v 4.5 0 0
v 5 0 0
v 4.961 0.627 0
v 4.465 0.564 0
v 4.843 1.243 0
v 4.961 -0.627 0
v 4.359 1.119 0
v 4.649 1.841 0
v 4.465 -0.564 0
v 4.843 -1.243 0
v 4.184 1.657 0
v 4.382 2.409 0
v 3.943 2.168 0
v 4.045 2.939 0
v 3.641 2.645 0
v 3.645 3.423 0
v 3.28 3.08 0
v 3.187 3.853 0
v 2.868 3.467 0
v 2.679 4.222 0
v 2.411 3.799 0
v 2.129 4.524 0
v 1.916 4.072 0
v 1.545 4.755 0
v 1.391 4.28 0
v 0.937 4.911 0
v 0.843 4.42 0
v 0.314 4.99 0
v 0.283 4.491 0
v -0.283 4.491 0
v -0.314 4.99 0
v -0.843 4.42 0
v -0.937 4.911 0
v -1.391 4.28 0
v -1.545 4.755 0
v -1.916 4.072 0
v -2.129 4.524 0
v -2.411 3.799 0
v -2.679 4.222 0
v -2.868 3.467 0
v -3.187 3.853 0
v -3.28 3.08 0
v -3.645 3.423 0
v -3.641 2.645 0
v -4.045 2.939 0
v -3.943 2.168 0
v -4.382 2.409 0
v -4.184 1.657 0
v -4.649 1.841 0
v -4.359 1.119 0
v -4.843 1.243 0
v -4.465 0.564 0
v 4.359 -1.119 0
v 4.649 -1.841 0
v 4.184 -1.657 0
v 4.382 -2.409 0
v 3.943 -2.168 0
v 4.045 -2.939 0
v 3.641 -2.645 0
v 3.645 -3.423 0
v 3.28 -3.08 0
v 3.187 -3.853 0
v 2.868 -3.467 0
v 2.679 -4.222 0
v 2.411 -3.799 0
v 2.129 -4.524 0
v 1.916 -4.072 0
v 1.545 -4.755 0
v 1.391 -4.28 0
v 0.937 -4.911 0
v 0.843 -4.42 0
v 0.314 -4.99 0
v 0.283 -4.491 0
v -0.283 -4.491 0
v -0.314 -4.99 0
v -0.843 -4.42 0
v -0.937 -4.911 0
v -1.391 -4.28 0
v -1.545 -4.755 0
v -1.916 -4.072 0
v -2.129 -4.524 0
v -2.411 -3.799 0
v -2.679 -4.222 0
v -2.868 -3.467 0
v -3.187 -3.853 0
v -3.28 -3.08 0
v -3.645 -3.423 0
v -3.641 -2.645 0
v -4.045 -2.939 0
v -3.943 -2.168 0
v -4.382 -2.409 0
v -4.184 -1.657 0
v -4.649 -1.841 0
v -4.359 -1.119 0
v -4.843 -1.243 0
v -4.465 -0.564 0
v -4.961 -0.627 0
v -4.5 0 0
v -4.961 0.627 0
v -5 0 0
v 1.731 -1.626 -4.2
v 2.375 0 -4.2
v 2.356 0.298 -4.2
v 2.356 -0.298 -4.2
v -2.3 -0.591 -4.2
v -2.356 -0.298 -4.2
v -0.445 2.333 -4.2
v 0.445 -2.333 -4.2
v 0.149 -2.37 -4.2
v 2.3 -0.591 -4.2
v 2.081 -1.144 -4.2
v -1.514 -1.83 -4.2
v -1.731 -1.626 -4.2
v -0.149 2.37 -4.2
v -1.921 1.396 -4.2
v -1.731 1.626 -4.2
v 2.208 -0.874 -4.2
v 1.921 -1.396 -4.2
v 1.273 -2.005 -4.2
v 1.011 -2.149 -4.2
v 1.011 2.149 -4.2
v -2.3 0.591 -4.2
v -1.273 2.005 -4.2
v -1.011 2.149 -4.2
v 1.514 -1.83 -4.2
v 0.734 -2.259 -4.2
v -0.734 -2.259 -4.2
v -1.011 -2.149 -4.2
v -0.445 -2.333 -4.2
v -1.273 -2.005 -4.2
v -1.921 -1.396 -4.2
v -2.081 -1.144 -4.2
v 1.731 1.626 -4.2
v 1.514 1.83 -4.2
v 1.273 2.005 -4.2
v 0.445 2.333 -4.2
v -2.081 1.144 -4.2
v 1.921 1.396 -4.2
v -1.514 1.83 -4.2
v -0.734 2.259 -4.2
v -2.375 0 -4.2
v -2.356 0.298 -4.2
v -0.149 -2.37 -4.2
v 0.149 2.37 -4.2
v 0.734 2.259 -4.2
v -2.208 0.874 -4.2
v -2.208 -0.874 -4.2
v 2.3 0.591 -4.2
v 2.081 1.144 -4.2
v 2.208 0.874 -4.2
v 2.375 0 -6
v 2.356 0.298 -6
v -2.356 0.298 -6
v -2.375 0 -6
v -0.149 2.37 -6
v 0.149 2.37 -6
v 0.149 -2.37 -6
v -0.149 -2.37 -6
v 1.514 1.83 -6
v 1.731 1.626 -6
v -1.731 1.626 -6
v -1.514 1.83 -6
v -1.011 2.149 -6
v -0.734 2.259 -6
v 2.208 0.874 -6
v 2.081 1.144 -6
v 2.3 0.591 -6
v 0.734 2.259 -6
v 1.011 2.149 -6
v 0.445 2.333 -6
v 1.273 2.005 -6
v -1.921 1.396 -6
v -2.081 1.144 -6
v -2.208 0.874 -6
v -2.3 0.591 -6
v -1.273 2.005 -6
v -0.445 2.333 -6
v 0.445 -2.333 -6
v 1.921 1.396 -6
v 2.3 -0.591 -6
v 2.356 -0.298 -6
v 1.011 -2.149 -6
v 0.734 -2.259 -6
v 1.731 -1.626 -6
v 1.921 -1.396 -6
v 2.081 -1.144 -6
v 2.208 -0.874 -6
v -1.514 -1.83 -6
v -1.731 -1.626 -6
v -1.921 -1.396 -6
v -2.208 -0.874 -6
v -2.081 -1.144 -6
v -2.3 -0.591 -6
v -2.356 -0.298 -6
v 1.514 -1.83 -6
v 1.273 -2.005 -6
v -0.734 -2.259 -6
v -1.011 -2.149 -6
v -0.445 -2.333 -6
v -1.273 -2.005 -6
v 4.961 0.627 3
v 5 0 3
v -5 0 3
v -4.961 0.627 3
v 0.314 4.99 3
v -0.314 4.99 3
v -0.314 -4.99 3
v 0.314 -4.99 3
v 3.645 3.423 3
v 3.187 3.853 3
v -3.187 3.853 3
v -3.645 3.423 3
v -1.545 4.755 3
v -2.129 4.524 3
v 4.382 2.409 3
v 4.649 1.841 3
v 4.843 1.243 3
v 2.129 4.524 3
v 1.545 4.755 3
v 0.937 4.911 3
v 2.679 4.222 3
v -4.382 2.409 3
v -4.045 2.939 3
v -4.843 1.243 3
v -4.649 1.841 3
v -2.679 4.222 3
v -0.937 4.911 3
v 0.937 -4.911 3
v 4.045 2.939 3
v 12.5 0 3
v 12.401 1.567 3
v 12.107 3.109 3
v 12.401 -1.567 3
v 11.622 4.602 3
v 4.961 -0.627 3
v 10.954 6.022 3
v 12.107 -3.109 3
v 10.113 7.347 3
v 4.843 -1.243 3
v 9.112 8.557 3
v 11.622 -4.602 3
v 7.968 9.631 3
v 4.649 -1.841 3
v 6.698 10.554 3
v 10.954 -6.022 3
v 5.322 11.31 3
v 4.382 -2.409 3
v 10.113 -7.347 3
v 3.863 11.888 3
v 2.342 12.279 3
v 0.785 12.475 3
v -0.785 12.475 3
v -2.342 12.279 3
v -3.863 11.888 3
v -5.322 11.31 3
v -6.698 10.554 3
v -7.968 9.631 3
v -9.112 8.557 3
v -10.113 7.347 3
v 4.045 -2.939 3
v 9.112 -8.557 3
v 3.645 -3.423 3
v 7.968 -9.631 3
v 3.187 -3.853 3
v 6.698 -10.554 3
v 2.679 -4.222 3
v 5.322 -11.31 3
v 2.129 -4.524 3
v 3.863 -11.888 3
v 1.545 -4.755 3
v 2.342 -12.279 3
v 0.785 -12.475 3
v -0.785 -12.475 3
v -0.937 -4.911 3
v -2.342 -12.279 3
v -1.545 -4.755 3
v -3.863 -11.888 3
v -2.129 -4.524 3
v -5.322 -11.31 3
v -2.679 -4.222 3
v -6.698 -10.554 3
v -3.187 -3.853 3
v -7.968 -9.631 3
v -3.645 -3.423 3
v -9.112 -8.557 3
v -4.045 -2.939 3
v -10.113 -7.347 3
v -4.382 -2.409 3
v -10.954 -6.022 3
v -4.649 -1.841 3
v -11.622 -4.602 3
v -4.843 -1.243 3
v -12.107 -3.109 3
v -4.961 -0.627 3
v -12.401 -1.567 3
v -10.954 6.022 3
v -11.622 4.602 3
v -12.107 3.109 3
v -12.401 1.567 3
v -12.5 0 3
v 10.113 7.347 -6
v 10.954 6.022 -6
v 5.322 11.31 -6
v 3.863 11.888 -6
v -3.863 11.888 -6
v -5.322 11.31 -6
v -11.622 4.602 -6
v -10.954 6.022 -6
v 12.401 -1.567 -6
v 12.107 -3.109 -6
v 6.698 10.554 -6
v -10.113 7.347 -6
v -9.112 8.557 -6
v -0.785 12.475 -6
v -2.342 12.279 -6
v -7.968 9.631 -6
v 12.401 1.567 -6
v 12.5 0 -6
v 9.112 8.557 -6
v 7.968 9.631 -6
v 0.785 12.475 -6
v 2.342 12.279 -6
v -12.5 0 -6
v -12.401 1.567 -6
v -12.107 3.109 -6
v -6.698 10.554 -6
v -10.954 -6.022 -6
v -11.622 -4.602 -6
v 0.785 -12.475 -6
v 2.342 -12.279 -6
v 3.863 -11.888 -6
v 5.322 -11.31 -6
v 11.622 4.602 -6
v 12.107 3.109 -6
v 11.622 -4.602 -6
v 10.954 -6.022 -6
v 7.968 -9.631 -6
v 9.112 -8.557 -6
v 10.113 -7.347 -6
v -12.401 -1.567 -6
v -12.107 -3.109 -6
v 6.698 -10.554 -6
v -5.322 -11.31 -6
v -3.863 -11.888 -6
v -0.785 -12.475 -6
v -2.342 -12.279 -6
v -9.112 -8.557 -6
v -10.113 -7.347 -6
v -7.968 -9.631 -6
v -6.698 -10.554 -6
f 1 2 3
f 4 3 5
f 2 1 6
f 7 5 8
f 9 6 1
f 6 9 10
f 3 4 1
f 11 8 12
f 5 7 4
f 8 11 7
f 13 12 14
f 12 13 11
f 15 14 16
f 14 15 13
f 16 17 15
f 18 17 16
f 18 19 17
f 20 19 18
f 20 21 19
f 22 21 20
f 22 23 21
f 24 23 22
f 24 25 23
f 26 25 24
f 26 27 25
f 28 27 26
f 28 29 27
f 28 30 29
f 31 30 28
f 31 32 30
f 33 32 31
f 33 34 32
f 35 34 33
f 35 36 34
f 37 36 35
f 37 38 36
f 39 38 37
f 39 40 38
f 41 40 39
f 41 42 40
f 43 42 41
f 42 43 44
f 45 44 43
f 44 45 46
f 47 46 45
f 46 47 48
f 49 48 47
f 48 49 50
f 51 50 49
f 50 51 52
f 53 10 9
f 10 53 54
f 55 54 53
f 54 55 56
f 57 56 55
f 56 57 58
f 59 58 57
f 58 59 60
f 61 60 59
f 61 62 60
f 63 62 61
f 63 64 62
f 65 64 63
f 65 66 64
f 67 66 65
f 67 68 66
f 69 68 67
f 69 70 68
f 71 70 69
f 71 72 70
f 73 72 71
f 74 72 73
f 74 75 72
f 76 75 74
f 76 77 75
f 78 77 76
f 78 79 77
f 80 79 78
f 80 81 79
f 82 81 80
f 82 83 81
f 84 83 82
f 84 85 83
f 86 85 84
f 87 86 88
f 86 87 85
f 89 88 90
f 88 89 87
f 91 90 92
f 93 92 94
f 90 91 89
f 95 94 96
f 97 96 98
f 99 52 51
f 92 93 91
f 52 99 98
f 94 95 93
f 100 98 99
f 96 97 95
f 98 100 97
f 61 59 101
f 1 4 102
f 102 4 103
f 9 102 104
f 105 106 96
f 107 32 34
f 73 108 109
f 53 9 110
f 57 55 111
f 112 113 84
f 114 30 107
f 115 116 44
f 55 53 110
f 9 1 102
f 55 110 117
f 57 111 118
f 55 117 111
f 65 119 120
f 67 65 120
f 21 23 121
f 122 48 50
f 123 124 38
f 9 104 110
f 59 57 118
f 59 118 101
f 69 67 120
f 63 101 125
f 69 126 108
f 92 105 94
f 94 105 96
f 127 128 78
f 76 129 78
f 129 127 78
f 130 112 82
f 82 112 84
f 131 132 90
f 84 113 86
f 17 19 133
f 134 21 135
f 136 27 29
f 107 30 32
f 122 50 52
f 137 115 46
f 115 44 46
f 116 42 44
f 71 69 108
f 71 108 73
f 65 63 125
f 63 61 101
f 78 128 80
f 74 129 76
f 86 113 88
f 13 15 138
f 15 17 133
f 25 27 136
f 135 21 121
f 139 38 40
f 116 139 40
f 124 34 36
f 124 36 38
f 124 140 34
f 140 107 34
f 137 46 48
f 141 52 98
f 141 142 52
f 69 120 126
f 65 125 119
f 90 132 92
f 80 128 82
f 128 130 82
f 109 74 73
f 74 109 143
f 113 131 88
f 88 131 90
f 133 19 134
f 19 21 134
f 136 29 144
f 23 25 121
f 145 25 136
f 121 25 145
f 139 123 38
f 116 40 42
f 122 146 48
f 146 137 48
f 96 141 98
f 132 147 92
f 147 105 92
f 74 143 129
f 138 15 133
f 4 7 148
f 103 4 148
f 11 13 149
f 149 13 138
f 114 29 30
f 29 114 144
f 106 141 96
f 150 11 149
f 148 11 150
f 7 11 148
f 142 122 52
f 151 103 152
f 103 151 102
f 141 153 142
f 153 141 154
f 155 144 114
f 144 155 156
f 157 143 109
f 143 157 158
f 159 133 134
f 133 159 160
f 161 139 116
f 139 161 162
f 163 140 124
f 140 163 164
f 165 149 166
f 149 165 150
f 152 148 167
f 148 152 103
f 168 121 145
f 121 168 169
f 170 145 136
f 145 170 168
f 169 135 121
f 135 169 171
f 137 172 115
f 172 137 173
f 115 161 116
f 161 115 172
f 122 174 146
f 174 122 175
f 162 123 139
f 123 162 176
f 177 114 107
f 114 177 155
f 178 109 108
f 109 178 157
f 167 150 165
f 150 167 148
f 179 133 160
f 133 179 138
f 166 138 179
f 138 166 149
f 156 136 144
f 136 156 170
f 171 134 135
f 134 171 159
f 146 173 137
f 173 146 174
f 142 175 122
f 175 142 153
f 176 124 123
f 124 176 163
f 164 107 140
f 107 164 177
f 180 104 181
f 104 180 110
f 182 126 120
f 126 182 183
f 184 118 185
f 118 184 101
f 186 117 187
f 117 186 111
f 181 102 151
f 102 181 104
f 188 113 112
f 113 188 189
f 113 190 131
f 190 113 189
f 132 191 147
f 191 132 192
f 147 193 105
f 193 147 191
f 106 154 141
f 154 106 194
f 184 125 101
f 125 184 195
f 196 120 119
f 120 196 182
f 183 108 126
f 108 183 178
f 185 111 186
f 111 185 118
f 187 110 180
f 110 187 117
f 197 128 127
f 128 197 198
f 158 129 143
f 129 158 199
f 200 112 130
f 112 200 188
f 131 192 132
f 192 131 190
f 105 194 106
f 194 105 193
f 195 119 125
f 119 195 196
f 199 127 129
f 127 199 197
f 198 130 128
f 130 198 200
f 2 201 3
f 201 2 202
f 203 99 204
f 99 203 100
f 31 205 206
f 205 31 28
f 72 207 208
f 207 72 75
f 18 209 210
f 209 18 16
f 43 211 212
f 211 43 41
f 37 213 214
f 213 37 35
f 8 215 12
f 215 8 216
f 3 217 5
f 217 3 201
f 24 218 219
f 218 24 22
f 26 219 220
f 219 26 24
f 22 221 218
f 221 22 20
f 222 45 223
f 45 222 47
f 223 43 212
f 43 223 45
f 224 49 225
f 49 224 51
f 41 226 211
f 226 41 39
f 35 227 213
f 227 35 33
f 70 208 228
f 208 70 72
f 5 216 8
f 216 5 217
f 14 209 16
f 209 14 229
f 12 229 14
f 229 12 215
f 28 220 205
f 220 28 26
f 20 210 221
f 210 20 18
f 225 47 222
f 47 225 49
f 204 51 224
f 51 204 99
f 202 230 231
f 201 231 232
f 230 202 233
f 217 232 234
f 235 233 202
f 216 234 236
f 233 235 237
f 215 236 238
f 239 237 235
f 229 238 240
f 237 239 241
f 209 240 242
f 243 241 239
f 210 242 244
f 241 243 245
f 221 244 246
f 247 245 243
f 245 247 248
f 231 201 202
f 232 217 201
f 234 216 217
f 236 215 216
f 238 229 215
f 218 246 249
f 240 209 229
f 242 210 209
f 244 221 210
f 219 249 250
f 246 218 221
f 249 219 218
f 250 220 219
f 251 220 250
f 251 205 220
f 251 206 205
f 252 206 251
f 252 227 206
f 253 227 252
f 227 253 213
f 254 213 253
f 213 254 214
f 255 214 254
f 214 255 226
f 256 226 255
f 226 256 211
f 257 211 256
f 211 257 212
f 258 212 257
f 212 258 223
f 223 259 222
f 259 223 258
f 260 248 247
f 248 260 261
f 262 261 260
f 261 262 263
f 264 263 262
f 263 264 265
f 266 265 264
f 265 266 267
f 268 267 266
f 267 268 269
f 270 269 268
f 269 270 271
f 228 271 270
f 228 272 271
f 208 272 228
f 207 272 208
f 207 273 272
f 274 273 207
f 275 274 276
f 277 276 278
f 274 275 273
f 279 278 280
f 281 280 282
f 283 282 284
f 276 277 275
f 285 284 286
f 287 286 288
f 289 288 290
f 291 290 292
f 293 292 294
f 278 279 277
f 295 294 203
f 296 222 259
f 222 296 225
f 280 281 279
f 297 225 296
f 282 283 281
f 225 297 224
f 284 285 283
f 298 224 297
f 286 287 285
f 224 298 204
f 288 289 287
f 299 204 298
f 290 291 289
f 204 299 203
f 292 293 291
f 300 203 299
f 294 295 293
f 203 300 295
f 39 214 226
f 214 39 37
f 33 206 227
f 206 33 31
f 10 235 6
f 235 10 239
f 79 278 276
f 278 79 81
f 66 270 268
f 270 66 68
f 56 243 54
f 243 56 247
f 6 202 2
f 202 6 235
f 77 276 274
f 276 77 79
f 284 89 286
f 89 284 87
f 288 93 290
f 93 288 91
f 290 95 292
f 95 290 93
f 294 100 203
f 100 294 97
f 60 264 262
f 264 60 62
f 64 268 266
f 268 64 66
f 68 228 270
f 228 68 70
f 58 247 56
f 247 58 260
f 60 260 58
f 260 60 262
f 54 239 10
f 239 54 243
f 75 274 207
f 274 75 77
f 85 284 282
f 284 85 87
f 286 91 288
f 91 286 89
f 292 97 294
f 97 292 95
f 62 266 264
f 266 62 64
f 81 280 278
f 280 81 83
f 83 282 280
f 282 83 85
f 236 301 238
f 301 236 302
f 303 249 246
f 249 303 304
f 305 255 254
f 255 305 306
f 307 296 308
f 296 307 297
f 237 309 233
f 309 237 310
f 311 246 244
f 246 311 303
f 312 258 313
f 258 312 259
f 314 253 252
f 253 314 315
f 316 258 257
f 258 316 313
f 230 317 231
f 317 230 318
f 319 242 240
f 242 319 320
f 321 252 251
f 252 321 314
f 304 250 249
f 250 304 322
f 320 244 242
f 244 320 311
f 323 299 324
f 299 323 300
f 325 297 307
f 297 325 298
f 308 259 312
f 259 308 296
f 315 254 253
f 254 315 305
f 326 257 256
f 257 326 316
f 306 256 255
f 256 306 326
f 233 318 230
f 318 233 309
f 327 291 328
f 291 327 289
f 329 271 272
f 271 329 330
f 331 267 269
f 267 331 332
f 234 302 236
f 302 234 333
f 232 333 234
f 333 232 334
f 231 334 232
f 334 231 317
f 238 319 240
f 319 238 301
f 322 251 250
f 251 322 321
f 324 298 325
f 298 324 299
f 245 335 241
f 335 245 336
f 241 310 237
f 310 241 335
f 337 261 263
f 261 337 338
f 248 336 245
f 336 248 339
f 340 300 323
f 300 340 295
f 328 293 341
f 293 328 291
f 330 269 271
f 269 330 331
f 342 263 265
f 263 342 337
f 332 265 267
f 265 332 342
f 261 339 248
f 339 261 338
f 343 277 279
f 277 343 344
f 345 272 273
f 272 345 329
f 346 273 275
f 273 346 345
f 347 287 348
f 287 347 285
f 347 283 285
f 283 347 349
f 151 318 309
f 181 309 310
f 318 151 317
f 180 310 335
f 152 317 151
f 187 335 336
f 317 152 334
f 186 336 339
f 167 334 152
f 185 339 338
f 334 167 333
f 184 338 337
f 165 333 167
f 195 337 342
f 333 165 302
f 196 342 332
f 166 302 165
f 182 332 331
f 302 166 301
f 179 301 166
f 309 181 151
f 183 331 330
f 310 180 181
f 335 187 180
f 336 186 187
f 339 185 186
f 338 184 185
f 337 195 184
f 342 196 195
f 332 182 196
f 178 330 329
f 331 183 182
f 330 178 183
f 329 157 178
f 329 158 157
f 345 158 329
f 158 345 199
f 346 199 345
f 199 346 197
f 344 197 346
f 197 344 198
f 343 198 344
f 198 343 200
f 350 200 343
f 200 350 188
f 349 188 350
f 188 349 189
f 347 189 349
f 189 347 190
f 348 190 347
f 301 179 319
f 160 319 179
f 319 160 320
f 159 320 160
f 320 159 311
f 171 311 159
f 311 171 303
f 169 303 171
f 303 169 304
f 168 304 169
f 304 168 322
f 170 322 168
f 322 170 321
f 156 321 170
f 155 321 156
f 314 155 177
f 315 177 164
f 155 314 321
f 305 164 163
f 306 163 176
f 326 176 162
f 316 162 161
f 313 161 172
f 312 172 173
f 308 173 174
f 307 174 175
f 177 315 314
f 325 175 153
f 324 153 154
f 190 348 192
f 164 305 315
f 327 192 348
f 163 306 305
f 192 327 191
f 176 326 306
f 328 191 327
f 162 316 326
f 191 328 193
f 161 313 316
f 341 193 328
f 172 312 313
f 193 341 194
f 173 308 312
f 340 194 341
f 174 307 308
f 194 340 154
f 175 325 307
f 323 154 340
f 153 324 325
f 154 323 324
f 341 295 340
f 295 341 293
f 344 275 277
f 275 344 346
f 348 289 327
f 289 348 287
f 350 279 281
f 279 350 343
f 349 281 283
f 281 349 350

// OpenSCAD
$fn = 50;

difference() {
	union() {
		translate(v = [0, 0, -6.0]) {
			cylinder(h = 9, r = 12.5);
		}
	}
	union() {
		translate(v = [0, 0, 0]) {
			rotate(a = [0, 0, 0]) {
				difference() {
					union() {
						translate(v = [0, 0, -9.0]) {
							cylinder(h = 9, r = 2.25);
						}
						translate(v = [0, 0, -4.2]) {
							cylinder(h = 4.2, r1 = 2.375, r2 = 4.5);
						}
						translate(v = [0, 0, -9.0]) {
							cylinder(h = 9, r = 2.375);
						}
						translate(v = [0, 0, -9.0]) {
							cylinder(h = 9, r = 2.25);
						}
					}
					union();
				}
			}
		}
		#cylinder(h = 3, r = 5.0);
	}
}
